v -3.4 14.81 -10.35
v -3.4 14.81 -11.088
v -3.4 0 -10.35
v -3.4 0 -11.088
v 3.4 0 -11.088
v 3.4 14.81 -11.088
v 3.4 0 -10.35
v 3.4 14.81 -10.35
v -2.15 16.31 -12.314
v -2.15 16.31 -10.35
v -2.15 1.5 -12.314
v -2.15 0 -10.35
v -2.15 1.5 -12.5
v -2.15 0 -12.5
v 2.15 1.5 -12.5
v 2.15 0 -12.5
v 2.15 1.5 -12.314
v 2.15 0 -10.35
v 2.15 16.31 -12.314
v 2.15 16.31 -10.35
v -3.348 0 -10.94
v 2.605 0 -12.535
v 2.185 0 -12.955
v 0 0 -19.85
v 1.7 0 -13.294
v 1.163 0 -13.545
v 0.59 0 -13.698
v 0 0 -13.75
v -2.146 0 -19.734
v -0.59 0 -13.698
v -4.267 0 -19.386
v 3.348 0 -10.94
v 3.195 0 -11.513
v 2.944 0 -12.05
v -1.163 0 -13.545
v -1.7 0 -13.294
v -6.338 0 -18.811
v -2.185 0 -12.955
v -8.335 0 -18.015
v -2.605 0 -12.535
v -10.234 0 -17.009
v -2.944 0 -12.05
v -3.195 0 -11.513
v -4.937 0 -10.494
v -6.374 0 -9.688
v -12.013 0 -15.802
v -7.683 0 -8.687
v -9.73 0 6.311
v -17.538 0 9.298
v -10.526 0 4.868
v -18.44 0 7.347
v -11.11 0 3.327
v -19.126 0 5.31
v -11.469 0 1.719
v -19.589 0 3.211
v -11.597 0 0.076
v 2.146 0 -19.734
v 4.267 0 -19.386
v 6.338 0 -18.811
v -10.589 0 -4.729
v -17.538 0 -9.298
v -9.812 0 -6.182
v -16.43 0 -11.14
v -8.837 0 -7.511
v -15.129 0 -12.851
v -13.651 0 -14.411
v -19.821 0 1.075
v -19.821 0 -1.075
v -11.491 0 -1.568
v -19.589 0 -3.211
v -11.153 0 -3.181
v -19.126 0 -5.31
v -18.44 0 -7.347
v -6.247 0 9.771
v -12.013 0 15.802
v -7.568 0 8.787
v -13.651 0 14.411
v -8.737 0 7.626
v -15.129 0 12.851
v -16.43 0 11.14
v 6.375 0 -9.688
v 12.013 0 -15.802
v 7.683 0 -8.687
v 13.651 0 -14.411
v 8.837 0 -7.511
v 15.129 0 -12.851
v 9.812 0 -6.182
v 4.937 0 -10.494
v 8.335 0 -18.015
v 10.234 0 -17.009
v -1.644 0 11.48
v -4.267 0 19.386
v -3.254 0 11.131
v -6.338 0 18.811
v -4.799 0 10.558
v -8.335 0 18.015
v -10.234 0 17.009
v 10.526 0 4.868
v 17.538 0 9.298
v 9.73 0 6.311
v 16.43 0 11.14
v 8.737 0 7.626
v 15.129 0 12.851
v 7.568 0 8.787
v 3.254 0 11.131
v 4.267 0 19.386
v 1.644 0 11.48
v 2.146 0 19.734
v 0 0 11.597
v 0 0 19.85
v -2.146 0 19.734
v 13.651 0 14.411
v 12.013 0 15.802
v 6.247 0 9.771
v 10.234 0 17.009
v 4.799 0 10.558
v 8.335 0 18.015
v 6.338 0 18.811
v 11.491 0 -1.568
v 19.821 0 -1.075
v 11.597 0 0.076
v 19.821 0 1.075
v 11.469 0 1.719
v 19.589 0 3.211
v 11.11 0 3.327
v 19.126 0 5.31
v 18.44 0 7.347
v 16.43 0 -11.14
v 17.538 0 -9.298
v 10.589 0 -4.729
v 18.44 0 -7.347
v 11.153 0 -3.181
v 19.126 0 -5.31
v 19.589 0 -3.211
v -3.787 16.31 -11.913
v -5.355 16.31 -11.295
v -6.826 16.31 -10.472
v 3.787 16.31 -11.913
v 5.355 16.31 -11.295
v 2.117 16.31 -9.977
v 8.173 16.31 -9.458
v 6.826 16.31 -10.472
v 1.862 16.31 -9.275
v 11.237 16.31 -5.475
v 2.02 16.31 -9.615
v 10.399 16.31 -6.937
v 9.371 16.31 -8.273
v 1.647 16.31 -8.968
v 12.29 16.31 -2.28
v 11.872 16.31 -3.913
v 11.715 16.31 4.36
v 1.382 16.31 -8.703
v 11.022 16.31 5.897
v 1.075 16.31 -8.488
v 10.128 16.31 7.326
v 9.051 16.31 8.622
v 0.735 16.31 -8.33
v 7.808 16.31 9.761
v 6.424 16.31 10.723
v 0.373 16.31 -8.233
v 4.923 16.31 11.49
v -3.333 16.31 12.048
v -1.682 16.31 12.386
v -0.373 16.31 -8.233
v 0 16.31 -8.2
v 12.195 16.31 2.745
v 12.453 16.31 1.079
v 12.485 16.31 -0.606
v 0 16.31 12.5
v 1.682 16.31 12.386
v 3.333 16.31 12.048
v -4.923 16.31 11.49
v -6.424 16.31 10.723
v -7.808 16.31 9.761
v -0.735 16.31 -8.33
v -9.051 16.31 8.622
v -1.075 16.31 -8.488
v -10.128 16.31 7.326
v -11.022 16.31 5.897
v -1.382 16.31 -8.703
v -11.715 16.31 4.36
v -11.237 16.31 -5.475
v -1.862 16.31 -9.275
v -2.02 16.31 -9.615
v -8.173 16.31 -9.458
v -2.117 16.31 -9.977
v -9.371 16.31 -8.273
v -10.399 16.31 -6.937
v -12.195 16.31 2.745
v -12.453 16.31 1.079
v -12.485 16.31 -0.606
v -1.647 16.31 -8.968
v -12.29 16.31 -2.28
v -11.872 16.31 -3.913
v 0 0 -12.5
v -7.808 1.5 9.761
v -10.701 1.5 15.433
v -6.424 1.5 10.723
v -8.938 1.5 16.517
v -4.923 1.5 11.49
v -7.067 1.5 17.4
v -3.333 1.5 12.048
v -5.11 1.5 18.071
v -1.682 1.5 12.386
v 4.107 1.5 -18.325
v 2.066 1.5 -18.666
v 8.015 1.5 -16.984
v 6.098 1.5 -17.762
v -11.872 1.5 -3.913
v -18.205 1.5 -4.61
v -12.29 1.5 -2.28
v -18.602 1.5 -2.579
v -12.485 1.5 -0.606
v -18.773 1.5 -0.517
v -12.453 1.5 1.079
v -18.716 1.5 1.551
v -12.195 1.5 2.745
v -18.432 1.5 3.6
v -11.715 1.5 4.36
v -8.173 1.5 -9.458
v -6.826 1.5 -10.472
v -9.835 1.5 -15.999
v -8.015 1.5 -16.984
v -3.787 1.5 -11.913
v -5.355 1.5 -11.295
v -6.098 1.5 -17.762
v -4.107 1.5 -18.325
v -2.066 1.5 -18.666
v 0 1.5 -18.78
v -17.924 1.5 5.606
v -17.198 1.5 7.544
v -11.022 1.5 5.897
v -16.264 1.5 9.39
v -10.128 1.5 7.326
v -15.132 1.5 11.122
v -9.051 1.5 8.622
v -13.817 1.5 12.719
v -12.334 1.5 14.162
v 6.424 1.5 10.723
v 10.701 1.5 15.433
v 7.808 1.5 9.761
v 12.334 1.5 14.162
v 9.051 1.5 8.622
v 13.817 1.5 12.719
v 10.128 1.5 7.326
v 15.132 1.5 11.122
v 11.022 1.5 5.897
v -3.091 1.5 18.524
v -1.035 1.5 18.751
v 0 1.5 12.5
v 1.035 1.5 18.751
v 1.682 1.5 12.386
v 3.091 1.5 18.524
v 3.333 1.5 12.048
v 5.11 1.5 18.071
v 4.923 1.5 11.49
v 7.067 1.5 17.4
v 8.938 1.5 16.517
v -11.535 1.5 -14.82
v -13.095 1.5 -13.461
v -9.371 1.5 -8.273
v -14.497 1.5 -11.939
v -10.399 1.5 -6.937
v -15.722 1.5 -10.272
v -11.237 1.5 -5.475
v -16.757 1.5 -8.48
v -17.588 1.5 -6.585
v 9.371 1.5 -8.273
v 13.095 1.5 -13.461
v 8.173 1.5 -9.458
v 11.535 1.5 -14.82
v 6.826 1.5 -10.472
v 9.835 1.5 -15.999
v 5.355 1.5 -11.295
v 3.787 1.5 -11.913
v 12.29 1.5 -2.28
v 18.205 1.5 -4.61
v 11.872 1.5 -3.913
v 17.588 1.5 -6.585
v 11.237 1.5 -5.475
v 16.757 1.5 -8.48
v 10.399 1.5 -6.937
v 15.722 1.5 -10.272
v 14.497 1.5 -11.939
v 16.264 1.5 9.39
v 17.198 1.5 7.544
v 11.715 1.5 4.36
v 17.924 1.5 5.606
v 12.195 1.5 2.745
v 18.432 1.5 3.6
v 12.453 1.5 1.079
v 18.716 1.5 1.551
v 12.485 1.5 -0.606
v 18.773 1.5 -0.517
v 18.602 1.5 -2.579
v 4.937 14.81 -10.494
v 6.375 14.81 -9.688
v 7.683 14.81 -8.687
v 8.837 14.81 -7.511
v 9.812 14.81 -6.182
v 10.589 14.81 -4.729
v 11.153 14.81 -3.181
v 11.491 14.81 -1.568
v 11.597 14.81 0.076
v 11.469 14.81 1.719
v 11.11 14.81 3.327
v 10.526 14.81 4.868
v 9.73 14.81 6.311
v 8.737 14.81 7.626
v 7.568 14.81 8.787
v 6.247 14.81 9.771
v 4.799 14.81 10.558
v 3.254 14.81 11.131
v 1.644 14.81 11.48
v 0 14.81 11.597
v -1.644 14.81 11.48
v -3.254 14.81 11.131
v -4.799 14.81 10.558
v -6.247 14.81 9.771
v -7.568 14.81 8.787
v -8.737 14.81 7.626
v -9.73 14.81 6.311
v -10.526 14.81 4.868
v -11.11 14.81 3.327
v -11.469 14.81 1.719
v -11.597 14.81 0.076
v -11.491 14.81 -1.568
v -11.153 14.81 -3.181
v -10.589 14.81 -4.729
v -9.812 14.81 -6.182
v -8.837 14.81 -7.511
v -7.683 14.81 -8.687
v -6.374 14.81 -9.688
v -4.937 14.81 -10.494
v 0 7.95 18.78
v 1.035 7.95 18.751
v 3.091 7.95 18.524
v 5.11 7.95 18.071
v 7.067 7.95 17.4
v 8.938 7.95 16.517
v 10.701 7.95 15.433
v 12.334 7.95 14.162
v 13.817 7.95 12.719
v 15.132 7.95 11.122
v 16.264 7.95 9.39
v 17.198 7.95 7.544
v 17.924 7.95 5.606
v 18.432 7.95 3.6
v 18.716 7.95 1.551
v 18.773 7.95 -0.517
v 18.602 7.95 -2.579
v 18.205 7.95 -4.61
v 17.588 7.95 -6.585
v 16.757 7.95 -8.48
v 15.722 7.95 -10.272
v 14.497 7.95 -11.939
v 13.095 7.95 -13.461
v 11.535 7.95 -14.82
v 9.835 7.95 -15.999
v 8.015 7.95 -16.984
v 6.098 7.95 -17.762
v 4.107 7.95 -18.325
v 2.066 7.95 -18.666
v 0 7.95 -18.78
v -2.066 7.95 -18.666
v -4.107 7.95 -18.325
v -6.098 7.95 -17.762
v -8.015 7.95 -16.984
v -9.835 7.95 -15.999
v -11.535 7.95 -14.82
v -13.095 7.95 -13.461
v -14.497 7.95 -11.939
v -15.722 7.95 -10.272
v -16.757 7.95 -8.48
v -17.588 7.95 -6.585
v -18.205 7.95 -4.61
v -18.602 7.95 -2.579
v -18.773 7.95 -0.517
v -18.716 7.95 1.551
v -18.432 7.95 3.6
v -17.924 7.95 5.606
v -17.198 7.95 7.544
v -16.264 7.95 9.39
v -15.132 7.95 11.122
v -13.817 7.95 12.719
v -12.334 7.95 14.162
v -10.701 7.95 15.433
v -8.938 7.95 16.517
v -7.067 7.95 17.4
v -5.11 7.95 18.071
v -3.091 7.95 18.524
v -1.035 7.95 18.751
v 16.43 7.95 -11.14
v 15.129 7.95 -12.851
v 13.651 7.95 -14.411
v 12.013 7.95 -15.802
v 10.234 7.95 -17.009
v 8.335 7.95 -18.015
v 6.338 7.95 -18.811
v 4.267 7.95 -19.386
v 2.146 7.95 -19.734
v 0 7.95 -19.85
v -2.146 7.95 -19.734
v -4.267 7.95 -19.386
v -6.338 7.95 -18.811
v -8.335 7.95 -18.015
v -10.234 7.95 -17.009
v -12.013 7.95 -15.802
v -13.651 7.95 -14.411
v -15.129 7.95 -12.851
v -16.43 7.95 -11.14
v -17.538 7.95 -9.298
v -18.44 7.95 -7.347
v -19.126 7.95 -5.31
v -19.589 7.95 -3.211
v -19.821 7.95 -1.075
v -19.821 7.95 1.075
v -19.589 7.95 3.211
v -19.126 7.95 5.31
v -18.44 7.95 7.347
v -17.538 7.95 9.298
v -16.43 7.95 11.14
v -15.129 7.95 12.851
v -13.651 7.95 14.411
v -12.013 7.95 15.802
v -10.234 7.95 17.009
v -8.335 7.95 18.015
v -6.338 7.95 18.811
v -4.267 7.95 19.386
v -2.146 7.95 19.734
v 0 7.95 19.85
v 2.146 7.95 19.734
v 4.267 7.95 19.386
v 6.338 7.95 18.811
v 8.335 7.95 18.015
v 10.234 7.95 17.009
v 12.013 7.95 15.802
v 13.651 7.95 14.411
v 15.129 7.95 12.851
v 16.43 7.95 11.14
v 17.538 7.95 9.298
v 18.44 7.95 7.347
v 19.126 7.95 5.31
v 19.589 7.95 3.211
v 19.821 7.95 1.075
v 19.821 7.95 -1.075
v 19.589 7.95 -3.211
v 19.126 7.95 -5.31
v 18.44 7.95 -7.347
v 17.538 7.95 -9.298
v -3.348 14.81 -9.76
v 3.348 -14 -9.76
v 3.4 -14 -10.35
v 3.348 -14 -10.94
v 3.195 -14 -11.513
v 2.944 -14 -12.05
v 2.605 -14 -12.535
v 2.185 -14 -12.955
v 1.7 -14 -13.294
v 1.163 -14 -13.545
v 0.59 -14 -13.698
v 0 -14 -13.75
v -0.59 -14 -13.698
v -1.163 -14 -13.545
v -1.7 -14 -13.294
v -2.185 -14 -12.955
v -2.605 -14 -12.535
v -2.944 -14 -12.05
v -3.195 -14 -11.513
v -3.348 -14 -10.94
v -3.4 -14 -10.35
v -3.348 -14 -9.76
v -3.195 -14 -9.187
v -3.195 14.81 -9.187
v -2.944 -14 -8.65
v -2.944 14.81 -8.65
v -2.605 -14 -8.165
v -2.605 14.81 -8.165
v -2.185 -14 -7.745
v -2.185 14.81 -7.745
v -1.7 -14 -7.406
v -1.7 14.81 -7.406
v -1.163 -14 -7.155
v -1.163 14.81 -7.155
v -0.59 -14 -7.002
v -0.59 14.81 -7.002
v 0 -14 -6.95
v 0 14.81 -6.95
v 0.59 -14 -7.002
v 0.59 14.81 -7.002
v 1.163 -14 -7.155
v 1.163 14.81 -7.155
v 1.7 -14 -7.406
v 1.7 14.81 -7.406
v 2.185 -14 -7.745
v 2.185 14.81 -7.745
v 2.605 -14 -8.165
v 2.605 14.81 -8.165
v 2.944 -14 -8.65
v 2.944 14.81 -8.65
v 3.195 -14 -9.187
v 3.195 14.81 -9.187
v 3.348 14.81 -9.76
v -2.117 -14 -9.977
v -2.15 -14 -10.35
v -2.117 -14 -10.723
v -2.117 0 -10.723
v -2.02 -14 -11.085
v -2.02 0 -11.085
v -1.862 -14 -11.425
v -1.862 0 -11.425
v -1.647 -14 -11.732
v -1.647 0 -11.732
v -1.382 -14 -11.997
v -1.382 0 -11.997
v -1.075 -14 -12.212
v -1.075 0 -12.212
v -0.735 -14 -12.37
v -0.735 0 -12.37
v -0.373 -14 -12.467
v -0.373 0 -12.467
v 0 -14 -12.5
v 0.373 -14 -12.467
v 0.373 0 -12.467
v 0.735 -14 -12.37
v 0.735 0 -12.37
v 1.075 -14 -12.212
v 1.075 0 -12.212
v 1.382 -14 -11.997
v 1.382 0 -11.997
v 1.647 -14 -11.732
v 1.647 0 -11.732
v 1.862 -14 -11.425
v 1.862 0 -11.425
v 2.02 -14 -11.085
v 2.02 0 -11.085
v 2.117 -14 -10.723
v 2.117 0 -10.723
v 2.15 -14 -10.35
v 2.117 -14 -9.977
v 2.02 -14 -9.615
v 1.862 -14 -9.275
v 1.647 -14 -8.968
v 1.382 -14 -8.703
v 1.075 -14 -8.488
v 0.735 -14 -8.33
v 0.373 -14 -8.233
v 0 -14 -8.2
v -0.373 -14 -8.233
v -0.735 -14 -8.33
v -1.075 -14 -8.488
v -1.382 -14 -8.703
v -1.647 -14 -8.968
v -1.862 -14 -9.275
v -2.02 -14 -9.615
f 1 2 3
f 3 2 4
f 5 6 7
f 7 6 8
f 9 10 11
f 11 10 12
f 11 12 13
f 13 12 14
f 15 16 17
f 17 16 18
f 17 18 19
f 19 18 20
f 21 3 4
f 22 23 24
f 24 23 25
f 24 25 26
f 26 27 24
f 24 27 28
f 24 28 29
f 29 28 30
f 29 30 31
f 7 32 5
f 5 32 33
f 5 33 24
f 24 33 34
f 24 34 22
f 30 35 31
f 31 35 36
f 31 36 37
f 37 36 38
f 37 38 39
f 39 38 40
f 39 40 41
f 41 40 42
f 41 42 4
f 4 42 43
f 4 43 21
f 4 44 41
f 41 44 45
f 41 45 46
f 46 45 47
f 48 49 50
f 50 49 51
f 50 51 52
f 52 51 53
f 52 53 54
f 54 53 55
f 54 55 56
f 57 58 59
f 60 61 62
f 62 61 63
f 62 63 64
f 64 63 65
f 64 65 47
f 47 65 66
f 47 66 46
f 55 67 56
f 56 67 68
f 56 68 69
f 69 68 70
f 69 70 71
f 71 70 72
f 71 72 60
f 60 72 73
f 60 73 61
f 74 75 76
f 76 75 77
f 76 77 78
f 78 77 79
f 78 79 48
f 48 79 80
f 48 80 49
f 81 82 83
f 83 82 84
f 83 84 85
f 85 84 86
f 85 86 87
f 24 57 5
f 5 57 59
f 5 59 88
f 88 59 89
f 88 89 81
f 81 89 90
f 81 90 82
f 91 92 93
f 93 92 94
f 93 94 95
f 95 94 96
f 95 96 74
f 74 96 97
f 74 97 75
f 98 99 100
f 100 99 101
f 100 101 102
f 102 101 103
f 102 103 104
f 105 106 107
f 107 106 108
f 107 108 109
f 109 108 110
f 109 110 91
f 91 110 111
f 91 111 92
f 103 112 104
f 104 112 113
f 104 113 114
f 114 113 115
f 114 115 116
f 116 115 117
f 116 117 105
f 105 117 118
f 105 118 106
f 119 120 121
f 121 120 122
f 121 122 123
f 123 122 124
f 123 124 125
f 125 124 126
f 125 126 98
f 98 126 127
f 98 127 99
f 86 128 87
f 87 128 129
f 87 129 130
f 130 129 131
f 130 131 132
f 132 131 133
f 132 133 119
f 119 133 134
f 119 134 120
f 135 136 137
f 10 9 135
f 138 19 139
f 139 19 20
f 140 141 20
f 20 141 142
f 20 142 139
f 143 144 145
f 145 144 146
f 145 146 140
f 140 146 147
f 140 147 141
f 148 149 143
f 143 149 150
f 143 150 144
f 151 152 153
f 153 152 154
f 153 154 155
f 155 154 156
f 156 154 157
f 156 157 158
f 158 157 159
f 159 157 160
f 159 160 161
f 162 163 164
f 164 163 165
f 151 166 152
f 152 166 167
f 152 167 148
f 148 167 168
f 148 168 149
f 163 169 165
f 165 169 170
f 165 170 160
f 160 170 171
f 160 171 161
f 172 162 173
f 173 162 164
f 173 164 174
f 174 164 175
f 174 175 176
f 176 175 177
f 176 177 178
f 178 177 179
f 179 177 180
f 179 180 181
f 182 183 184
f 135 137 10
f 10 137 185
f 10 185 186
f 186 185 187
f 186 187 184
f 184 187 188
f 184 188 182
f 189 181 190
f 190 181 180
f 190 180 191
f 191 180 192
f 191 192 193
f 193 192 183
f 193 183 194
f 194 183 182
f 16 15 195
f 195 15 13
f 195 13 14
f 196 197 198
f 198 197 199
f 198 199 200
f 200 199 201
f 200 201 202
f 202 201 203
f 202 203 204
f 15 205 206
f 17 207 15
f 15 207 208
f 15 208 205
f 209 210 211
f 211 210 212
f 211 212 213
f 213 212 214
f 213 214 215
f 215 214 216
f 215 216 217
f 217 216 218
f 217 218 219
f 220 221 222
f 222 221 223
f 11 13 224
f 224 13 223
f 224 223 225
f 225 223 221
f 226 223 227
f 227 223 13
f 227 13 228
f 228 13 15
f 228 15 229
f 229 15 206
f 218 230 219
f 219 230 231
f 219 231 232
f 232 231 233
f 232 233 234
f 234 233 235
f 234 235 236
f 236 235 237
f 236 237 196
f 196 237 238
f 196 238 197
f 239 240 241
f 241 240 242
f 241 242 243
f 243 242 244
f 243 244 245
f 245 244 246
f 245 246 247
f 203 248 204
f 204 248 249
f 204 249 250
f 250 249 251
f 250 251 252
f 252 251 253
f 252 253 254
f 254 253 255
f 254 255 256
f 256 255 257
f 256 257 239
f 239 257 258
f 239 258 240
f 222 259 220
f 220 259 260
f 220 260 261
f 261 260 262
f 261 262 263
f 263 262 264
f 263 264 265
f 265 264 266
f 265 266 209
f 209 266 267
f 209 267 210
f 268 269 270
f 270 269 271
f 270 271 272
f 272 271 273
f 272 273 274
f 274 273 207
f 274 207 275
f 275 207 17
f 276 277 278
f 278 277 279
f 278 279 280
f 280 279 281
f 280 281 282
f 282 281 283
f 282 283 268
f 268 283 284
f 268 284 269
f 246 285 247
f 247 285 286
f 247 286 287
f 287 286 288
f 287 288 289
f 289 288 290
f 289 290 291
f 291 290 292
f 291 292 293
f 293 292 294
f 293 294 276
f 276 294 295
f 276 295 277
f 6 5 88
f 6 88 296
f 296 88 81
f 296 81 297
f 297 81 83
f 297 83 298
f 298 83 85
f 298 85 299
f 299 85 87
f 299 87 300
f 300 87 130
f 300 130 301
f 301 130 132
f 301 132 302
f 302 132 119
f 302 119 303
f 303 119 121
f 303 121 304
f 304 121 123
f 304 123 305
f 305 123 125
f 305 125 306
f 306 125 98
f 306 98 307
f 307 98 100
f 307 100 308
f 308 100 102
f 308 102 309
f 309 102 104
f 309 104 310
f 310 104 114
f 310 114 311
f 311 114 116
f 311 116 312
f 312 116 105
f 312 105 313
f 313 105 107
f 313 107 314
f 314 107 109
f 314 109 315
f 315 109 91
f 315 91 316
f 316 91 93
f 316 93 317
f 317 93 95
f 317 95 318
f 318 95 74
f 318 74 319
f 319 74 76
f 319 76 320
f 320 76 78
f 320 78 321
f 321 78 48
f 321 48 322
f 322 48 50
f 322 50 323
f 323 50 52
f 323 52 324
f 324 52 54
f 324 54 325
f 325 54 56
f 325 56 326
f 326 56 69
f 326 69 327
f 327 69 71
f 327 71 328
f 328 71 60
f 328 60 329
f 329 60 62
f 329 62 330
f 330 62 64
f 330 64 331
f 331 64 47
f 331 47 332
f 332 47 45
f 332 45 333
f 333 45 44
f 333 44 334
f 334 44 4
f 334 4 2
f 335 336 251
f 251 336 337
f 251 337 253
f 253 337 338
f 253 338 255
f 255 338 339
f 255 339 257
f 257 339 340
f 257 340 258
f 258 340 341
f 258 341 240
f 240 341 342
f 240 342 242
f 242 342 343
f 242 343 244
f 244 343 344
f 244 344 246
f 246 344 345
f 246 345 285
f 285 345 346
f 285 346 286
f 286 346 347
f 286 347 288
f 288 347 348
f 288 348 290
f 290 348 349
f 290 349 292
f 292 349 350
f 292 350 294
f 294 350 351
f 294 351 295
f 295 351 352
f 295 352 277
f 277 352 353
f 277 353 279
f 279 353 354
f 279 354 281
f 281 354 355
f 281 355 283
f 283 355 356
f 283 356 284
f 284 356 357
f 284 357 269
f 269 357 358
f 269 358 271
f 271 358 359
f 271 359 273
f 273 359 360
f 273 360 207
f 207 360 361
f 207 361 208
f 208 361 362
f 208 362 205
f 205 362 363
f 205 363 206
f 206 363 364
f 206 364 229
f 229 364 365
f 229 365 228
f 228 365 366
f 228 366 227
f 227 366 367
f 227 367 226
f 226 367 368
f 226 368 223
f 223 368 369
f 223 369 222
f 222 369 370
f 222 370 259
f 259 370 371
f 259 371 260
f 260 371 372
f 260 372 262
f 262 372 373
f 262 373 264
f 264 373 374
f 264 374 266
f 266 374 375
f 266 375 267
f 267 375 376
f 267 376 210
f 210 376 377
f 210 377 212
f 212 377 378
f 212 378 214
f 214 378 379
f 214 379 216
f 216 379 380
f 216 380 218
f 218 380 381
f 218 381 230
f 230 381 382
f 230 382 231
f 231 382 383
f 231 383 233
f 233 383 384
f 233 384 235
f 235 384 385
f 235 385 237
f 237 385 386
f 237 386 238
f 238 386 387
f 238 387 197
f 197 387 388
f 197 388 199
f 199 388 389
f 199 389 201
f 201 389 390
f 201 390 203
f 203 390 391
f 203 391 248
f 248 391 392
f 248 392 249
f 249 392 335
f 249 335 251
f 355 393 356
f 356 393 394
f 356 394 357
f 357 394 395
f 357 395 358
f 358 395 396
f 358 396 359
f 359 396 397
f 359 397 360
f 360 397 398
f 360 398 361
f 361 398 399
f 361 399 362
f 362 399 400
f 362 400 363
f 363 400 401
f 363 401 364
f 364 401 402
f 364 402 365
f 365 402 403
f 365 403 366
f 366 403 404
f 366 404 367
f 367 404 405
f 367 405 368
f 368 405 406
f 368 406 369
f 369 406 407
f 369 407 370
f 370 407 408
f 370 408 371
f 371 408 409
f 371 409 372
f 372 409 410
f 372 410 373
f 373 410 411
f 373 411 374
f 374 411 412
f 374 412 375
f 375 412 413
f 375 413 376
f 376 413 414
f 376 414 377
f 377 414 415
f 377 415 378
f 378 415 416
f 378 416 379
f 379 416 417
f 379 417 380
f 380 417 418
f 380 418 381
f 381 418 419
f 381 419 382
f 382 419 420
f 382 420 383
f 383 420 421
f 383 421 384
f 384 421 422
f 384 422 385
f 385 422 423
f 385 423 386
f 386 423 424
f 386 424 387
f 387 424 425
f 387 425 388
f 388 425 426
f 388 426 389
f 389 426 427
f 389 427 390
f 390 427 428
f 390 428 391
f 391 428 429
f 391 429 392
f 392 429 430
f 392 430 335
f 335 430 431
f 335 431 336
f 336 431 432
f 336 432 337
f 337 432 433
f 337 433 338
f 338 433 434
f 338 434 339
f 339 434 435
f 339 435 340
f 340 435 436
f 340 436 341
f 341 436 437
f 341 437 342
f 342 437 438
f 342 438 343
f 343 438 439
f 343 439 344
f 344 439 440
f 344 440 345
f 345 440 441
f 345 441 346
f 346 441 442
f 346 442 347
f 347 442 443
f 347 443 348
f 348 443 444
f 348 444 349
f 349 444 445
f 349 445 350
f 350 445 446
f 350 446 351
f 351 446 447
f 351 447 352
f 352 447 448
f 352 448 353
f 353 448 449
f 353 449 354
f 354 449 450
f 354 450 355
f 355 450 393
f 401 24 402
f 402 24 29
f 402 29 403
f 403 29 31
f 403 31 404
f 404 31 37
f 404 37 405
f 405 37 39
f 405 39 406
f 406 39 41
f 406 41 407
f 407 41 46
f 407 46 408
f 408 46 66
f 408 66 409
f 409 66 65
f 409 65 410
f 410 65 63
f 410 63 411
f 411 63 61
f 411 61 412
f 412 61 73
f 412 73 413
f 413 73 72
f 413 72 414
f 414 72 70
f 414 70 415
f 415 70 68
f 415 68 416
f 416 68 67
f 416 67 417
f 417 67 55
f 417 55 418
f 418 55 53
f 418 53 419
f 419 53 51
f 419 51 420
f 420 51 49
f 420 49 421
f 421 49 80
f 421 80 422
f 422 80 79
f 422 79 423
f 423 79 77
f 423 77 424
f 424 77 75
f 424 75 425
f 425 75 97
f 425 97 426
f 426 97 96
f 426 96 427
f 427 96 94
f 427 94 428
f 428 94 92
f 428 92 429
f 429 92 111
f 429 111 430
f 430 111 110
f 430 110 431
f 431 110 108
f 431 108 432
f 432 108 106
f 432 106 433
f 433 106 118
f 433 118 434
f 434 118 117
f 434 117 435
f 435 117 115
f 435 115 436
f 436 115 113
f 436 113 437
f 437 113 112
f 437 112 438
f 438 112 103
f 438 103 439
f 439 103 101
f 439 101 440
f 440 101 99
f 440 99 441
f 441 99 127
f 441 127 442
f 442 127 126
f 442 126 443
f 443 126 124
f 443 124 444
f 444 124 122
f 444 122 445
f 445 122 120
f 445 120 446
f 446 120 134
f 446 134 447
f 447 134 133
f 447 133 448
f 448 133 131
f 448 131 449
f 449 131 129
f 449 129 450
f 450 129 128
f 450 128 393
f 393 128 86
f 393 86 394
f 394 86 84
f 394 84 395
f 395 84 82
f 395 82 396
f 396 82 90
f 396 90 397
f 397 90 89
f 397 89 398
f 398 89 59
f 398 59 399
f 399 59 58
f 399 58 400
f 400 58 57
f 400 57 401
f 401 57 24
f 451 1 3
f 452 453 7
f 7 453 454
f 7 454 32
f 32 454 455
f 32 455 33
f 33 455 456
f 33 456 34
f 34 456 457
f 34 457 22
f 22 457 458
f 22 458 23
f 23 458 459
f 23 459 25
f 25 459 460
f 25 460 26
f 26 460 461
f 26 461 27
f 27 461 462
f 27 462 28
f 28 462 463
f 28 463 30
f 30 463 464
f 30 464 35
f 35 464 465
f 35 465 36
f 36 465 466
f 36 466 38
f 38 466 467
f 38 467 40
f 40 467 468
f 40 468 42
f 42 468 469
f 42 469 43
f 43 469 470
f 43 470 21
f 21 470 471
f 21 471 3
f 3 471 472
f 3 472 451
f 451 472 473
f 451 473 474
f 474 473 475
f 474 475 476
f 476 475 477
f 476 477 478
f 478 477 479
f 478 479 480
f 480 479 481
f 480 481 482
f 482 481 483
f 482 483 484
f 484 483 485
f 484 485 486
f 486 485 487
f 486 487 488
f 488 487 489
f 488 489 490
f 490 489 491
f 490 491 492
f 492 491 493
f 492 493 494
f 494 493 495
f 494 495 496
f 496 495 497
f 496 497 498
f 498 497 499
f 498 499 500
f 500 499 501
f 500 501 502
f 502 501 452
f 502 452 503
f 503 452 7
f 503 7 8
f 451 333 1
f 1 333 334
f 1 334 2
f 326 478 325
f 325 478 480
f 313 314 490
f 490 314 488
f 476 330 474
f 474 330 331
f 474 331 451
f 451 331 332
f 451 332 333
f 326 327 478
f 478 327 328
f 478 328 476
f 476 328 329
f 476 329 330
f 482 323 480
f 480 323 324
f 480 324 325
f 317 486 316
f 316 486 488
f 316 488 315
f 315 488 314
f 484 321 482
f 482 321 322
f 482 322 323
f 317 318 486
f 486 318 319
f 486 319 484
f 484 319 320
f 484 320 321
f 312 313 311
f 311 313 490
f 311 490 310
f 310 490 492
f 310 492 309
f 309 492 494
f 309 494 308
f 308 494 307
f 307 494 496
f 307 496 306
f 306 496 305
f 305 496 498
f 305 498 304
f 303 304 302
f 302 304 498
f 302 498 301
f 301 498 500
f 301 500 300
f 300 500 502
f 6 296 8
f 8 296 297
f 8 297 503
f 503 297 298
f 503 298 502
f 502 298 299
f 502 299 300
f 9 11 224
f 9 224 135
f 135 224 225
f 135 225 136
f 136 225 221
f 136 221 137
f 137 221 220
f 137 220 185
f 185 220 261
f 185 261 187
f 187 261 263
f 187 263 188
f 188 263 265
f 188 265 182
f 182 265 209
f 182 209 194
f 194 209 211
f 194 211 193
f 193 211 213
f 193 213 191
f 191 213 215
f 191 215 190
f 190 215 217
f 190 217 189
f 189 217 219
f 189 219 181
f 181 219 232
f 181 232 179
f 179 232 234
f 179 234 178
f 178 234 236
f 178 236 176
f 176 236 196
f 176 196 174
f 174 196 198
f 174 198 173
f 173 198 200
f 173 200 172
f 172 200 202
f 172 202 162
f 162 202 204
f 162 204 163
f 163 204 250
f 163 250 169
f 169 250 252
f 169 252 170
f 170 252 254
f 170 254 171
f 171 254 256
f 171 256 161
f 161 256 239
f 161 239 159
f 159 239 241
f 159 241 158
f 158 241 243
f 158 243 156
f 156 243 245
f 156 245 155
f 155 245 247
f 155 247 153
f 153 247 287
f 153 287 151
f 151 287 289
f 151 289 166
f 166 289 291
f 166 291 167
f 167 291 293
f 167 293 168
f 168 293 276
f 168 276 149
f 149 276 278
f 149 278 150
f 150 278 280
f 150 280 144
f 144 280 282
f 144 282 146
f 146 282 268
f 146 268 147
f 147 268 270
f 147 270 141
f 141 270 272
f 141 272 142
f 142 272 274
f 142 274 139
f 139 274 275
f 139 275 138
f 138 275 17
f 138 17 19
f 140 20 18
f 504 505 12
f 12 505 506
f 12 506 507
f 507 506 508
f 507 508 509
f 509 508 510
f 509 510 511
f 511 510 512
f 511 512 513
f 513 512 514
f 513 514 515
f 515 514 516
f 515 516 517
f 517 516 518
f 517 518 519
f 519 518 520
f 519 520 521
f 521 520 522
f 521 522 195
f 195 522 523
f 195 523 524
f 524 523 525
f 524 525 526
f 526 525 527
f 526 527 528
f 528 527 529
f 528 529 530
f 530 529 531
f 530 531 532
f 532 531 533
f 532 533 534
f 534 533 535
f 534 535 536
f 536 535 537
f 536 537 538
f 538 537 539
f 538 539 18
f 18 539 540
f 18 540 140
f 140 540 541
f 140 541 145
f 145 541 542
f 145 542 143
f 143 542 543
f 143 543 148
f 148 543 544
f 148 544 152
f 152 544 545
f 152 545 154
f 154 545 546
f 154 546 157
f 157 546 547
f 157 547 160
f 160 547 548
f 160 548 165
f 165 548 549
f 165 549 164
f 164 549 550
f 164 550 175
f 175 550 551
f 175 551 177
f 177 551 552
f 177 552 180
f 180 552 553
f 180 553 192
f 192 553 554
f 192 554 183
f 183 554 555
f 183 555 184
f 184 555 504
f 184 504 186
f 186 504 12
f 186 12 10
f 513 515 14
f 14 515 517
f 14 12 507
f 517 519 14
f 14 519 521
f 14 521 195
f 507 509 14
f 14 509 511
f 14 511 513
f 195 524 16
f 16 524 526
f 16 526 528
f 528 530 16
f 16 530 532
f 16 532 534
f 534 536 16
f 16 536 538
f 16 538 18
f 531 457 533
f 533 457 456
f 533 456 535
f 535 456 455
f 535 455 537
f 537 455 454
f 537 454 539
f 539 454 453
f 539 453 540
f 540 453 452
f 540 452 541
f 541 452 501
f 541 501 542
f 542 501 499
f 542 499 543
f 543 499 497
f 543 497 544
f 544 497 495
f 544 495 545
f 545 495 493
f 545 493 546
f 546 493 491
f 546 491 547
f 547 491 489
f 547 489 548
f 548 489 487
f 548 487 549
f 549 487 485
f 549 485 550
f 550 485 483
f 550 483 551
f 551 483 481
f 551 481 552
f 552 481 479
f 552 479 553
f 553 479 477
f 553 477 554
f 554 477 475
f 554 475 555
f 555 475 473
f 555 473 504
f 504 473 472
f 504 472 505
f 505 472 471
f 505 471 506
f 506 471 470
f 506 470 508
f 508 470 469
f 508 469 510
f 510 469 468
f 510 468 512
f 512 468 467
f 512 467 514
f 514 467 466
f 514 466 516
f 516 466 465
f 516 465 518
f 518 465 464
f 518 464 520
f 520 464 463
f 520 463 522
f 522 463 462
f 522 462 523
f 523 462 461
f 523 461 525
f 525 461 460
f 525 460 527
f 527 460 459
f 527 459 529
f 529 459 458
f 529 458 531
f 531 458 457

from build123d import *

# Parameters (mm, degrees)
SKETCH1_R            = 19.85
SKETCH1_R_2          = 18.78
BOSS_EXTRUDE3_DEPTH  = 7.95
SKETCH2_R            = 18.78
BOSS_EXTRUDE5_DEPTH  = 1.5
SKETCH4_R            = 12.5
BOSS_EXTRUDE6_DEPTH  = 16.31
SKETCH5_R            = 2.15
SKETCH5_W            = 4.3
SKETCH5_H            = 2.15
CUT_EXTRUDE2_DEPTH   = 16.31
SKETCH6_R            = 11.597360911
CUT_EXTRUDE3_DEPTH   = 14.809999892
SKETCH12_R           = 3.4
SKETCH12_W           = 6.8
SKETCH12_H           = 3.4
BOSS_EXTRUDE8_DEPTH  = 24.969999892
SKETCH5_6_R          = 2.15
SKETCH5_6_W          = 4.3
SKETCH5_6_H          = 2.15
CUT_EXTRUDE5_DEPTH   = 24.969999892
CUT_EXTRUDE6_START   = -14.81
SKETCH14_R           = 15.219310499
SKETCH14_R_2         = 12.5
CUT_EXTRUDE6_DEPTH   = 14.81
SKETCH17_W           = 6.8
SKETCH17_H           = 2.662223843
CUT_EXTRUDE7_DEPTH   = 16.587999892
SKETCH18_R           = 3.4
SKETCH18_R_2         = 2.15
BOSS_EXTRUDE10_DEPTH = 14
SKETCH19_R           = 5.618160511
SKETCH19_R_2         = 3.4
CUT_EXTRUDE8_DEPTH   = 14


with BuildPart() as part:
    # Sketch1 → Boss-Extrude3 (new body)
    with BuildSketch(Plane(origin=(0, 0, 0), x_dir=(1, 0, 0), z_dir=(0, 1, 0))):
        Circle(SKETCH1_R)
        Circle(SKETCH1_R_2, mode=Mode.SUBTRACT)
    extrude(amount=BOSS_EXTRUDE3_DEPTH)

    # Sketch2 → Boss-Extrude5 (add)
    with BuildSketch(Plane.XZ):
        Circle(SKETCH2_R)
    extrude(amount=-BOSS_EXTRUDE5_DEPTH)


with BuildPart() as body_2:
    # Sketch4 → Boss-Extrude6 (new body)
    with BuildSketch(Plane.XZ):
        Circle(SKETCH4_R)
    extrude(amount=-BOSS_EXTRUDE6_DEPTH)


with BuildPart() as cut_extrude2_tool:
    # Sketch5 → Cut-Extrude2 (new body)
    with BuildSketch(Plane(origin=(0, 16.31, 0), x_dir=(1, 0, 0), z_dir=(0, 1, 0))):
        with Locations((0, 10.35)):
            Circle(SKETCH5_R)
        with Locations((0, 11.425)):
            Rectangle(SKETCH5_W, SKETCH5_H)
    extrude(amount=-CUT_EXTRUDE2_DEPTH)


with BuildPart() as part_1:
    add(part.part)

    # Cut-Extrude2: cut by cut_extrude2_tool
    add(cut_extrude2_tool.part, mode=Mode.SUBTRACT)


with BuildPart() as body_2_1:
    add(body_2.part)

    # Cut-Extrude2: cut by cut_extrude2_tool
    add(cut_extrude2_tool.part, mode=Mode.SUBTRACT)


with BuildPart() as cut_extrude3_tool:
    # Sketch6 → Cut-Extrude3 (new body)
    with BuildSketch(Plane.XZ):
        Circle(SKETCH6_R)
    extrude(amount=-CUT_EXTRUDE3_DEPTH)


with BuildPart() as part_2:
    add(part_1.part)

    # Cut-Extrude3: cut by cut_extrude3_tool
    add(cut_extrude3_tool.part, mode=Mode.SUBTRACT)



with BuildPart() as body_2_2:
    add(body_2_1.part)

    # Cut-Extrude3: cut by cut_extrude3_tool
    add(cut_extrude3_tool.part, mode=Mode.SUBTRACT)


with BuildPart() as part_3:
    add(part_2.part)

    add(body_2_2.part)  # Boss-Extrude8 merges body 2
    # Sketch12 → Boss-Extrude8 (add)
    with BuildSketch(Plane(origin=(0, 16.31, 0), x_dir=(1, 0, 0), z_dir=(0, 1, 0))):
        with Locations((0, 10.35)):
            Circle(SKETCH12_R)
        with Locations((0, 12.05)):
            Rectangle(SKETCH12_W, SKETCH12_H)
    extrude(amount=-BOSS_EXTRUDE8_DEPTH)

    # Sketch5<6> → Cut-Extrude5 (cut)
    with BuildSketch(Plane(origin=(0, 16.31, 0), x_dir=(1, 0, 0), z_dir=(0, 1, 0))):
        with Locations((0, 10.35)):
            Circle(SKETCH5_6_R)
        with Locations((0, 11.425)):
            Rectangle(SKETCH5_6_W, SKETCH5_6_H)
    extrude(amount=-CUT_EXTRUDE5_DEPTH, mode=Mode.SUBTRACT)

    # Sketch14 → Cut-Extrude6 (cut)
    with BuildSketch(Plane(origin=(0, 16.31, 0), x_dir=(1, 0, 0), z_dir=(0, 1, 0)).offset(CUT_EXTRUDE6_START)):
        Circle(SKETCH14_R)
        Circle(SKETCH14_R_2, mode=Mode.SUBTRACT)
    extrude(amount=CUT_EXTRUDE6_DEPTH, mode=Mode.SUBTRACT)

    # Sketch17 → Cut-Extrude7 (cut)
    with BuildSketch(Plane.XZ):
        with Locations((0, -12.418888079)):
            Rectangle(SKETCH17_W, SKETCH17_H)
    extrude(amount=CUT_EXTRUDE7_DEPTH, mode=Mode.SUBTRACT)

    # Sketch18 → Boss-Extrude10 (add)
    with BuildSketch(Plane.XZ):
        with Locations((0, -10.35)):
            Circle(SKETCH18_R)
        with Locations((0, -10.35)):
            Circle(SKETCH18_R_2, mode=Mode.SUBTRACT)
    extrude(amount=BOSS_EXTRUDE10_DEPTH)

    # Sketch19 → Cut-Extrude8 (cut)
    with BuildSketch(Plane.XZ):
        with Locations((0, -10.35)):
            Circle(SKETCH19_R)
        with Locations((0, -10.35)):
            Circle(SKETCH19_R_2, mode=Mode.SUBTRACT)
    extrude(amount=CUT_EXTRUDE8_DEPTH, mode=Mode.SUBTRACT)


solid = part_3.part
